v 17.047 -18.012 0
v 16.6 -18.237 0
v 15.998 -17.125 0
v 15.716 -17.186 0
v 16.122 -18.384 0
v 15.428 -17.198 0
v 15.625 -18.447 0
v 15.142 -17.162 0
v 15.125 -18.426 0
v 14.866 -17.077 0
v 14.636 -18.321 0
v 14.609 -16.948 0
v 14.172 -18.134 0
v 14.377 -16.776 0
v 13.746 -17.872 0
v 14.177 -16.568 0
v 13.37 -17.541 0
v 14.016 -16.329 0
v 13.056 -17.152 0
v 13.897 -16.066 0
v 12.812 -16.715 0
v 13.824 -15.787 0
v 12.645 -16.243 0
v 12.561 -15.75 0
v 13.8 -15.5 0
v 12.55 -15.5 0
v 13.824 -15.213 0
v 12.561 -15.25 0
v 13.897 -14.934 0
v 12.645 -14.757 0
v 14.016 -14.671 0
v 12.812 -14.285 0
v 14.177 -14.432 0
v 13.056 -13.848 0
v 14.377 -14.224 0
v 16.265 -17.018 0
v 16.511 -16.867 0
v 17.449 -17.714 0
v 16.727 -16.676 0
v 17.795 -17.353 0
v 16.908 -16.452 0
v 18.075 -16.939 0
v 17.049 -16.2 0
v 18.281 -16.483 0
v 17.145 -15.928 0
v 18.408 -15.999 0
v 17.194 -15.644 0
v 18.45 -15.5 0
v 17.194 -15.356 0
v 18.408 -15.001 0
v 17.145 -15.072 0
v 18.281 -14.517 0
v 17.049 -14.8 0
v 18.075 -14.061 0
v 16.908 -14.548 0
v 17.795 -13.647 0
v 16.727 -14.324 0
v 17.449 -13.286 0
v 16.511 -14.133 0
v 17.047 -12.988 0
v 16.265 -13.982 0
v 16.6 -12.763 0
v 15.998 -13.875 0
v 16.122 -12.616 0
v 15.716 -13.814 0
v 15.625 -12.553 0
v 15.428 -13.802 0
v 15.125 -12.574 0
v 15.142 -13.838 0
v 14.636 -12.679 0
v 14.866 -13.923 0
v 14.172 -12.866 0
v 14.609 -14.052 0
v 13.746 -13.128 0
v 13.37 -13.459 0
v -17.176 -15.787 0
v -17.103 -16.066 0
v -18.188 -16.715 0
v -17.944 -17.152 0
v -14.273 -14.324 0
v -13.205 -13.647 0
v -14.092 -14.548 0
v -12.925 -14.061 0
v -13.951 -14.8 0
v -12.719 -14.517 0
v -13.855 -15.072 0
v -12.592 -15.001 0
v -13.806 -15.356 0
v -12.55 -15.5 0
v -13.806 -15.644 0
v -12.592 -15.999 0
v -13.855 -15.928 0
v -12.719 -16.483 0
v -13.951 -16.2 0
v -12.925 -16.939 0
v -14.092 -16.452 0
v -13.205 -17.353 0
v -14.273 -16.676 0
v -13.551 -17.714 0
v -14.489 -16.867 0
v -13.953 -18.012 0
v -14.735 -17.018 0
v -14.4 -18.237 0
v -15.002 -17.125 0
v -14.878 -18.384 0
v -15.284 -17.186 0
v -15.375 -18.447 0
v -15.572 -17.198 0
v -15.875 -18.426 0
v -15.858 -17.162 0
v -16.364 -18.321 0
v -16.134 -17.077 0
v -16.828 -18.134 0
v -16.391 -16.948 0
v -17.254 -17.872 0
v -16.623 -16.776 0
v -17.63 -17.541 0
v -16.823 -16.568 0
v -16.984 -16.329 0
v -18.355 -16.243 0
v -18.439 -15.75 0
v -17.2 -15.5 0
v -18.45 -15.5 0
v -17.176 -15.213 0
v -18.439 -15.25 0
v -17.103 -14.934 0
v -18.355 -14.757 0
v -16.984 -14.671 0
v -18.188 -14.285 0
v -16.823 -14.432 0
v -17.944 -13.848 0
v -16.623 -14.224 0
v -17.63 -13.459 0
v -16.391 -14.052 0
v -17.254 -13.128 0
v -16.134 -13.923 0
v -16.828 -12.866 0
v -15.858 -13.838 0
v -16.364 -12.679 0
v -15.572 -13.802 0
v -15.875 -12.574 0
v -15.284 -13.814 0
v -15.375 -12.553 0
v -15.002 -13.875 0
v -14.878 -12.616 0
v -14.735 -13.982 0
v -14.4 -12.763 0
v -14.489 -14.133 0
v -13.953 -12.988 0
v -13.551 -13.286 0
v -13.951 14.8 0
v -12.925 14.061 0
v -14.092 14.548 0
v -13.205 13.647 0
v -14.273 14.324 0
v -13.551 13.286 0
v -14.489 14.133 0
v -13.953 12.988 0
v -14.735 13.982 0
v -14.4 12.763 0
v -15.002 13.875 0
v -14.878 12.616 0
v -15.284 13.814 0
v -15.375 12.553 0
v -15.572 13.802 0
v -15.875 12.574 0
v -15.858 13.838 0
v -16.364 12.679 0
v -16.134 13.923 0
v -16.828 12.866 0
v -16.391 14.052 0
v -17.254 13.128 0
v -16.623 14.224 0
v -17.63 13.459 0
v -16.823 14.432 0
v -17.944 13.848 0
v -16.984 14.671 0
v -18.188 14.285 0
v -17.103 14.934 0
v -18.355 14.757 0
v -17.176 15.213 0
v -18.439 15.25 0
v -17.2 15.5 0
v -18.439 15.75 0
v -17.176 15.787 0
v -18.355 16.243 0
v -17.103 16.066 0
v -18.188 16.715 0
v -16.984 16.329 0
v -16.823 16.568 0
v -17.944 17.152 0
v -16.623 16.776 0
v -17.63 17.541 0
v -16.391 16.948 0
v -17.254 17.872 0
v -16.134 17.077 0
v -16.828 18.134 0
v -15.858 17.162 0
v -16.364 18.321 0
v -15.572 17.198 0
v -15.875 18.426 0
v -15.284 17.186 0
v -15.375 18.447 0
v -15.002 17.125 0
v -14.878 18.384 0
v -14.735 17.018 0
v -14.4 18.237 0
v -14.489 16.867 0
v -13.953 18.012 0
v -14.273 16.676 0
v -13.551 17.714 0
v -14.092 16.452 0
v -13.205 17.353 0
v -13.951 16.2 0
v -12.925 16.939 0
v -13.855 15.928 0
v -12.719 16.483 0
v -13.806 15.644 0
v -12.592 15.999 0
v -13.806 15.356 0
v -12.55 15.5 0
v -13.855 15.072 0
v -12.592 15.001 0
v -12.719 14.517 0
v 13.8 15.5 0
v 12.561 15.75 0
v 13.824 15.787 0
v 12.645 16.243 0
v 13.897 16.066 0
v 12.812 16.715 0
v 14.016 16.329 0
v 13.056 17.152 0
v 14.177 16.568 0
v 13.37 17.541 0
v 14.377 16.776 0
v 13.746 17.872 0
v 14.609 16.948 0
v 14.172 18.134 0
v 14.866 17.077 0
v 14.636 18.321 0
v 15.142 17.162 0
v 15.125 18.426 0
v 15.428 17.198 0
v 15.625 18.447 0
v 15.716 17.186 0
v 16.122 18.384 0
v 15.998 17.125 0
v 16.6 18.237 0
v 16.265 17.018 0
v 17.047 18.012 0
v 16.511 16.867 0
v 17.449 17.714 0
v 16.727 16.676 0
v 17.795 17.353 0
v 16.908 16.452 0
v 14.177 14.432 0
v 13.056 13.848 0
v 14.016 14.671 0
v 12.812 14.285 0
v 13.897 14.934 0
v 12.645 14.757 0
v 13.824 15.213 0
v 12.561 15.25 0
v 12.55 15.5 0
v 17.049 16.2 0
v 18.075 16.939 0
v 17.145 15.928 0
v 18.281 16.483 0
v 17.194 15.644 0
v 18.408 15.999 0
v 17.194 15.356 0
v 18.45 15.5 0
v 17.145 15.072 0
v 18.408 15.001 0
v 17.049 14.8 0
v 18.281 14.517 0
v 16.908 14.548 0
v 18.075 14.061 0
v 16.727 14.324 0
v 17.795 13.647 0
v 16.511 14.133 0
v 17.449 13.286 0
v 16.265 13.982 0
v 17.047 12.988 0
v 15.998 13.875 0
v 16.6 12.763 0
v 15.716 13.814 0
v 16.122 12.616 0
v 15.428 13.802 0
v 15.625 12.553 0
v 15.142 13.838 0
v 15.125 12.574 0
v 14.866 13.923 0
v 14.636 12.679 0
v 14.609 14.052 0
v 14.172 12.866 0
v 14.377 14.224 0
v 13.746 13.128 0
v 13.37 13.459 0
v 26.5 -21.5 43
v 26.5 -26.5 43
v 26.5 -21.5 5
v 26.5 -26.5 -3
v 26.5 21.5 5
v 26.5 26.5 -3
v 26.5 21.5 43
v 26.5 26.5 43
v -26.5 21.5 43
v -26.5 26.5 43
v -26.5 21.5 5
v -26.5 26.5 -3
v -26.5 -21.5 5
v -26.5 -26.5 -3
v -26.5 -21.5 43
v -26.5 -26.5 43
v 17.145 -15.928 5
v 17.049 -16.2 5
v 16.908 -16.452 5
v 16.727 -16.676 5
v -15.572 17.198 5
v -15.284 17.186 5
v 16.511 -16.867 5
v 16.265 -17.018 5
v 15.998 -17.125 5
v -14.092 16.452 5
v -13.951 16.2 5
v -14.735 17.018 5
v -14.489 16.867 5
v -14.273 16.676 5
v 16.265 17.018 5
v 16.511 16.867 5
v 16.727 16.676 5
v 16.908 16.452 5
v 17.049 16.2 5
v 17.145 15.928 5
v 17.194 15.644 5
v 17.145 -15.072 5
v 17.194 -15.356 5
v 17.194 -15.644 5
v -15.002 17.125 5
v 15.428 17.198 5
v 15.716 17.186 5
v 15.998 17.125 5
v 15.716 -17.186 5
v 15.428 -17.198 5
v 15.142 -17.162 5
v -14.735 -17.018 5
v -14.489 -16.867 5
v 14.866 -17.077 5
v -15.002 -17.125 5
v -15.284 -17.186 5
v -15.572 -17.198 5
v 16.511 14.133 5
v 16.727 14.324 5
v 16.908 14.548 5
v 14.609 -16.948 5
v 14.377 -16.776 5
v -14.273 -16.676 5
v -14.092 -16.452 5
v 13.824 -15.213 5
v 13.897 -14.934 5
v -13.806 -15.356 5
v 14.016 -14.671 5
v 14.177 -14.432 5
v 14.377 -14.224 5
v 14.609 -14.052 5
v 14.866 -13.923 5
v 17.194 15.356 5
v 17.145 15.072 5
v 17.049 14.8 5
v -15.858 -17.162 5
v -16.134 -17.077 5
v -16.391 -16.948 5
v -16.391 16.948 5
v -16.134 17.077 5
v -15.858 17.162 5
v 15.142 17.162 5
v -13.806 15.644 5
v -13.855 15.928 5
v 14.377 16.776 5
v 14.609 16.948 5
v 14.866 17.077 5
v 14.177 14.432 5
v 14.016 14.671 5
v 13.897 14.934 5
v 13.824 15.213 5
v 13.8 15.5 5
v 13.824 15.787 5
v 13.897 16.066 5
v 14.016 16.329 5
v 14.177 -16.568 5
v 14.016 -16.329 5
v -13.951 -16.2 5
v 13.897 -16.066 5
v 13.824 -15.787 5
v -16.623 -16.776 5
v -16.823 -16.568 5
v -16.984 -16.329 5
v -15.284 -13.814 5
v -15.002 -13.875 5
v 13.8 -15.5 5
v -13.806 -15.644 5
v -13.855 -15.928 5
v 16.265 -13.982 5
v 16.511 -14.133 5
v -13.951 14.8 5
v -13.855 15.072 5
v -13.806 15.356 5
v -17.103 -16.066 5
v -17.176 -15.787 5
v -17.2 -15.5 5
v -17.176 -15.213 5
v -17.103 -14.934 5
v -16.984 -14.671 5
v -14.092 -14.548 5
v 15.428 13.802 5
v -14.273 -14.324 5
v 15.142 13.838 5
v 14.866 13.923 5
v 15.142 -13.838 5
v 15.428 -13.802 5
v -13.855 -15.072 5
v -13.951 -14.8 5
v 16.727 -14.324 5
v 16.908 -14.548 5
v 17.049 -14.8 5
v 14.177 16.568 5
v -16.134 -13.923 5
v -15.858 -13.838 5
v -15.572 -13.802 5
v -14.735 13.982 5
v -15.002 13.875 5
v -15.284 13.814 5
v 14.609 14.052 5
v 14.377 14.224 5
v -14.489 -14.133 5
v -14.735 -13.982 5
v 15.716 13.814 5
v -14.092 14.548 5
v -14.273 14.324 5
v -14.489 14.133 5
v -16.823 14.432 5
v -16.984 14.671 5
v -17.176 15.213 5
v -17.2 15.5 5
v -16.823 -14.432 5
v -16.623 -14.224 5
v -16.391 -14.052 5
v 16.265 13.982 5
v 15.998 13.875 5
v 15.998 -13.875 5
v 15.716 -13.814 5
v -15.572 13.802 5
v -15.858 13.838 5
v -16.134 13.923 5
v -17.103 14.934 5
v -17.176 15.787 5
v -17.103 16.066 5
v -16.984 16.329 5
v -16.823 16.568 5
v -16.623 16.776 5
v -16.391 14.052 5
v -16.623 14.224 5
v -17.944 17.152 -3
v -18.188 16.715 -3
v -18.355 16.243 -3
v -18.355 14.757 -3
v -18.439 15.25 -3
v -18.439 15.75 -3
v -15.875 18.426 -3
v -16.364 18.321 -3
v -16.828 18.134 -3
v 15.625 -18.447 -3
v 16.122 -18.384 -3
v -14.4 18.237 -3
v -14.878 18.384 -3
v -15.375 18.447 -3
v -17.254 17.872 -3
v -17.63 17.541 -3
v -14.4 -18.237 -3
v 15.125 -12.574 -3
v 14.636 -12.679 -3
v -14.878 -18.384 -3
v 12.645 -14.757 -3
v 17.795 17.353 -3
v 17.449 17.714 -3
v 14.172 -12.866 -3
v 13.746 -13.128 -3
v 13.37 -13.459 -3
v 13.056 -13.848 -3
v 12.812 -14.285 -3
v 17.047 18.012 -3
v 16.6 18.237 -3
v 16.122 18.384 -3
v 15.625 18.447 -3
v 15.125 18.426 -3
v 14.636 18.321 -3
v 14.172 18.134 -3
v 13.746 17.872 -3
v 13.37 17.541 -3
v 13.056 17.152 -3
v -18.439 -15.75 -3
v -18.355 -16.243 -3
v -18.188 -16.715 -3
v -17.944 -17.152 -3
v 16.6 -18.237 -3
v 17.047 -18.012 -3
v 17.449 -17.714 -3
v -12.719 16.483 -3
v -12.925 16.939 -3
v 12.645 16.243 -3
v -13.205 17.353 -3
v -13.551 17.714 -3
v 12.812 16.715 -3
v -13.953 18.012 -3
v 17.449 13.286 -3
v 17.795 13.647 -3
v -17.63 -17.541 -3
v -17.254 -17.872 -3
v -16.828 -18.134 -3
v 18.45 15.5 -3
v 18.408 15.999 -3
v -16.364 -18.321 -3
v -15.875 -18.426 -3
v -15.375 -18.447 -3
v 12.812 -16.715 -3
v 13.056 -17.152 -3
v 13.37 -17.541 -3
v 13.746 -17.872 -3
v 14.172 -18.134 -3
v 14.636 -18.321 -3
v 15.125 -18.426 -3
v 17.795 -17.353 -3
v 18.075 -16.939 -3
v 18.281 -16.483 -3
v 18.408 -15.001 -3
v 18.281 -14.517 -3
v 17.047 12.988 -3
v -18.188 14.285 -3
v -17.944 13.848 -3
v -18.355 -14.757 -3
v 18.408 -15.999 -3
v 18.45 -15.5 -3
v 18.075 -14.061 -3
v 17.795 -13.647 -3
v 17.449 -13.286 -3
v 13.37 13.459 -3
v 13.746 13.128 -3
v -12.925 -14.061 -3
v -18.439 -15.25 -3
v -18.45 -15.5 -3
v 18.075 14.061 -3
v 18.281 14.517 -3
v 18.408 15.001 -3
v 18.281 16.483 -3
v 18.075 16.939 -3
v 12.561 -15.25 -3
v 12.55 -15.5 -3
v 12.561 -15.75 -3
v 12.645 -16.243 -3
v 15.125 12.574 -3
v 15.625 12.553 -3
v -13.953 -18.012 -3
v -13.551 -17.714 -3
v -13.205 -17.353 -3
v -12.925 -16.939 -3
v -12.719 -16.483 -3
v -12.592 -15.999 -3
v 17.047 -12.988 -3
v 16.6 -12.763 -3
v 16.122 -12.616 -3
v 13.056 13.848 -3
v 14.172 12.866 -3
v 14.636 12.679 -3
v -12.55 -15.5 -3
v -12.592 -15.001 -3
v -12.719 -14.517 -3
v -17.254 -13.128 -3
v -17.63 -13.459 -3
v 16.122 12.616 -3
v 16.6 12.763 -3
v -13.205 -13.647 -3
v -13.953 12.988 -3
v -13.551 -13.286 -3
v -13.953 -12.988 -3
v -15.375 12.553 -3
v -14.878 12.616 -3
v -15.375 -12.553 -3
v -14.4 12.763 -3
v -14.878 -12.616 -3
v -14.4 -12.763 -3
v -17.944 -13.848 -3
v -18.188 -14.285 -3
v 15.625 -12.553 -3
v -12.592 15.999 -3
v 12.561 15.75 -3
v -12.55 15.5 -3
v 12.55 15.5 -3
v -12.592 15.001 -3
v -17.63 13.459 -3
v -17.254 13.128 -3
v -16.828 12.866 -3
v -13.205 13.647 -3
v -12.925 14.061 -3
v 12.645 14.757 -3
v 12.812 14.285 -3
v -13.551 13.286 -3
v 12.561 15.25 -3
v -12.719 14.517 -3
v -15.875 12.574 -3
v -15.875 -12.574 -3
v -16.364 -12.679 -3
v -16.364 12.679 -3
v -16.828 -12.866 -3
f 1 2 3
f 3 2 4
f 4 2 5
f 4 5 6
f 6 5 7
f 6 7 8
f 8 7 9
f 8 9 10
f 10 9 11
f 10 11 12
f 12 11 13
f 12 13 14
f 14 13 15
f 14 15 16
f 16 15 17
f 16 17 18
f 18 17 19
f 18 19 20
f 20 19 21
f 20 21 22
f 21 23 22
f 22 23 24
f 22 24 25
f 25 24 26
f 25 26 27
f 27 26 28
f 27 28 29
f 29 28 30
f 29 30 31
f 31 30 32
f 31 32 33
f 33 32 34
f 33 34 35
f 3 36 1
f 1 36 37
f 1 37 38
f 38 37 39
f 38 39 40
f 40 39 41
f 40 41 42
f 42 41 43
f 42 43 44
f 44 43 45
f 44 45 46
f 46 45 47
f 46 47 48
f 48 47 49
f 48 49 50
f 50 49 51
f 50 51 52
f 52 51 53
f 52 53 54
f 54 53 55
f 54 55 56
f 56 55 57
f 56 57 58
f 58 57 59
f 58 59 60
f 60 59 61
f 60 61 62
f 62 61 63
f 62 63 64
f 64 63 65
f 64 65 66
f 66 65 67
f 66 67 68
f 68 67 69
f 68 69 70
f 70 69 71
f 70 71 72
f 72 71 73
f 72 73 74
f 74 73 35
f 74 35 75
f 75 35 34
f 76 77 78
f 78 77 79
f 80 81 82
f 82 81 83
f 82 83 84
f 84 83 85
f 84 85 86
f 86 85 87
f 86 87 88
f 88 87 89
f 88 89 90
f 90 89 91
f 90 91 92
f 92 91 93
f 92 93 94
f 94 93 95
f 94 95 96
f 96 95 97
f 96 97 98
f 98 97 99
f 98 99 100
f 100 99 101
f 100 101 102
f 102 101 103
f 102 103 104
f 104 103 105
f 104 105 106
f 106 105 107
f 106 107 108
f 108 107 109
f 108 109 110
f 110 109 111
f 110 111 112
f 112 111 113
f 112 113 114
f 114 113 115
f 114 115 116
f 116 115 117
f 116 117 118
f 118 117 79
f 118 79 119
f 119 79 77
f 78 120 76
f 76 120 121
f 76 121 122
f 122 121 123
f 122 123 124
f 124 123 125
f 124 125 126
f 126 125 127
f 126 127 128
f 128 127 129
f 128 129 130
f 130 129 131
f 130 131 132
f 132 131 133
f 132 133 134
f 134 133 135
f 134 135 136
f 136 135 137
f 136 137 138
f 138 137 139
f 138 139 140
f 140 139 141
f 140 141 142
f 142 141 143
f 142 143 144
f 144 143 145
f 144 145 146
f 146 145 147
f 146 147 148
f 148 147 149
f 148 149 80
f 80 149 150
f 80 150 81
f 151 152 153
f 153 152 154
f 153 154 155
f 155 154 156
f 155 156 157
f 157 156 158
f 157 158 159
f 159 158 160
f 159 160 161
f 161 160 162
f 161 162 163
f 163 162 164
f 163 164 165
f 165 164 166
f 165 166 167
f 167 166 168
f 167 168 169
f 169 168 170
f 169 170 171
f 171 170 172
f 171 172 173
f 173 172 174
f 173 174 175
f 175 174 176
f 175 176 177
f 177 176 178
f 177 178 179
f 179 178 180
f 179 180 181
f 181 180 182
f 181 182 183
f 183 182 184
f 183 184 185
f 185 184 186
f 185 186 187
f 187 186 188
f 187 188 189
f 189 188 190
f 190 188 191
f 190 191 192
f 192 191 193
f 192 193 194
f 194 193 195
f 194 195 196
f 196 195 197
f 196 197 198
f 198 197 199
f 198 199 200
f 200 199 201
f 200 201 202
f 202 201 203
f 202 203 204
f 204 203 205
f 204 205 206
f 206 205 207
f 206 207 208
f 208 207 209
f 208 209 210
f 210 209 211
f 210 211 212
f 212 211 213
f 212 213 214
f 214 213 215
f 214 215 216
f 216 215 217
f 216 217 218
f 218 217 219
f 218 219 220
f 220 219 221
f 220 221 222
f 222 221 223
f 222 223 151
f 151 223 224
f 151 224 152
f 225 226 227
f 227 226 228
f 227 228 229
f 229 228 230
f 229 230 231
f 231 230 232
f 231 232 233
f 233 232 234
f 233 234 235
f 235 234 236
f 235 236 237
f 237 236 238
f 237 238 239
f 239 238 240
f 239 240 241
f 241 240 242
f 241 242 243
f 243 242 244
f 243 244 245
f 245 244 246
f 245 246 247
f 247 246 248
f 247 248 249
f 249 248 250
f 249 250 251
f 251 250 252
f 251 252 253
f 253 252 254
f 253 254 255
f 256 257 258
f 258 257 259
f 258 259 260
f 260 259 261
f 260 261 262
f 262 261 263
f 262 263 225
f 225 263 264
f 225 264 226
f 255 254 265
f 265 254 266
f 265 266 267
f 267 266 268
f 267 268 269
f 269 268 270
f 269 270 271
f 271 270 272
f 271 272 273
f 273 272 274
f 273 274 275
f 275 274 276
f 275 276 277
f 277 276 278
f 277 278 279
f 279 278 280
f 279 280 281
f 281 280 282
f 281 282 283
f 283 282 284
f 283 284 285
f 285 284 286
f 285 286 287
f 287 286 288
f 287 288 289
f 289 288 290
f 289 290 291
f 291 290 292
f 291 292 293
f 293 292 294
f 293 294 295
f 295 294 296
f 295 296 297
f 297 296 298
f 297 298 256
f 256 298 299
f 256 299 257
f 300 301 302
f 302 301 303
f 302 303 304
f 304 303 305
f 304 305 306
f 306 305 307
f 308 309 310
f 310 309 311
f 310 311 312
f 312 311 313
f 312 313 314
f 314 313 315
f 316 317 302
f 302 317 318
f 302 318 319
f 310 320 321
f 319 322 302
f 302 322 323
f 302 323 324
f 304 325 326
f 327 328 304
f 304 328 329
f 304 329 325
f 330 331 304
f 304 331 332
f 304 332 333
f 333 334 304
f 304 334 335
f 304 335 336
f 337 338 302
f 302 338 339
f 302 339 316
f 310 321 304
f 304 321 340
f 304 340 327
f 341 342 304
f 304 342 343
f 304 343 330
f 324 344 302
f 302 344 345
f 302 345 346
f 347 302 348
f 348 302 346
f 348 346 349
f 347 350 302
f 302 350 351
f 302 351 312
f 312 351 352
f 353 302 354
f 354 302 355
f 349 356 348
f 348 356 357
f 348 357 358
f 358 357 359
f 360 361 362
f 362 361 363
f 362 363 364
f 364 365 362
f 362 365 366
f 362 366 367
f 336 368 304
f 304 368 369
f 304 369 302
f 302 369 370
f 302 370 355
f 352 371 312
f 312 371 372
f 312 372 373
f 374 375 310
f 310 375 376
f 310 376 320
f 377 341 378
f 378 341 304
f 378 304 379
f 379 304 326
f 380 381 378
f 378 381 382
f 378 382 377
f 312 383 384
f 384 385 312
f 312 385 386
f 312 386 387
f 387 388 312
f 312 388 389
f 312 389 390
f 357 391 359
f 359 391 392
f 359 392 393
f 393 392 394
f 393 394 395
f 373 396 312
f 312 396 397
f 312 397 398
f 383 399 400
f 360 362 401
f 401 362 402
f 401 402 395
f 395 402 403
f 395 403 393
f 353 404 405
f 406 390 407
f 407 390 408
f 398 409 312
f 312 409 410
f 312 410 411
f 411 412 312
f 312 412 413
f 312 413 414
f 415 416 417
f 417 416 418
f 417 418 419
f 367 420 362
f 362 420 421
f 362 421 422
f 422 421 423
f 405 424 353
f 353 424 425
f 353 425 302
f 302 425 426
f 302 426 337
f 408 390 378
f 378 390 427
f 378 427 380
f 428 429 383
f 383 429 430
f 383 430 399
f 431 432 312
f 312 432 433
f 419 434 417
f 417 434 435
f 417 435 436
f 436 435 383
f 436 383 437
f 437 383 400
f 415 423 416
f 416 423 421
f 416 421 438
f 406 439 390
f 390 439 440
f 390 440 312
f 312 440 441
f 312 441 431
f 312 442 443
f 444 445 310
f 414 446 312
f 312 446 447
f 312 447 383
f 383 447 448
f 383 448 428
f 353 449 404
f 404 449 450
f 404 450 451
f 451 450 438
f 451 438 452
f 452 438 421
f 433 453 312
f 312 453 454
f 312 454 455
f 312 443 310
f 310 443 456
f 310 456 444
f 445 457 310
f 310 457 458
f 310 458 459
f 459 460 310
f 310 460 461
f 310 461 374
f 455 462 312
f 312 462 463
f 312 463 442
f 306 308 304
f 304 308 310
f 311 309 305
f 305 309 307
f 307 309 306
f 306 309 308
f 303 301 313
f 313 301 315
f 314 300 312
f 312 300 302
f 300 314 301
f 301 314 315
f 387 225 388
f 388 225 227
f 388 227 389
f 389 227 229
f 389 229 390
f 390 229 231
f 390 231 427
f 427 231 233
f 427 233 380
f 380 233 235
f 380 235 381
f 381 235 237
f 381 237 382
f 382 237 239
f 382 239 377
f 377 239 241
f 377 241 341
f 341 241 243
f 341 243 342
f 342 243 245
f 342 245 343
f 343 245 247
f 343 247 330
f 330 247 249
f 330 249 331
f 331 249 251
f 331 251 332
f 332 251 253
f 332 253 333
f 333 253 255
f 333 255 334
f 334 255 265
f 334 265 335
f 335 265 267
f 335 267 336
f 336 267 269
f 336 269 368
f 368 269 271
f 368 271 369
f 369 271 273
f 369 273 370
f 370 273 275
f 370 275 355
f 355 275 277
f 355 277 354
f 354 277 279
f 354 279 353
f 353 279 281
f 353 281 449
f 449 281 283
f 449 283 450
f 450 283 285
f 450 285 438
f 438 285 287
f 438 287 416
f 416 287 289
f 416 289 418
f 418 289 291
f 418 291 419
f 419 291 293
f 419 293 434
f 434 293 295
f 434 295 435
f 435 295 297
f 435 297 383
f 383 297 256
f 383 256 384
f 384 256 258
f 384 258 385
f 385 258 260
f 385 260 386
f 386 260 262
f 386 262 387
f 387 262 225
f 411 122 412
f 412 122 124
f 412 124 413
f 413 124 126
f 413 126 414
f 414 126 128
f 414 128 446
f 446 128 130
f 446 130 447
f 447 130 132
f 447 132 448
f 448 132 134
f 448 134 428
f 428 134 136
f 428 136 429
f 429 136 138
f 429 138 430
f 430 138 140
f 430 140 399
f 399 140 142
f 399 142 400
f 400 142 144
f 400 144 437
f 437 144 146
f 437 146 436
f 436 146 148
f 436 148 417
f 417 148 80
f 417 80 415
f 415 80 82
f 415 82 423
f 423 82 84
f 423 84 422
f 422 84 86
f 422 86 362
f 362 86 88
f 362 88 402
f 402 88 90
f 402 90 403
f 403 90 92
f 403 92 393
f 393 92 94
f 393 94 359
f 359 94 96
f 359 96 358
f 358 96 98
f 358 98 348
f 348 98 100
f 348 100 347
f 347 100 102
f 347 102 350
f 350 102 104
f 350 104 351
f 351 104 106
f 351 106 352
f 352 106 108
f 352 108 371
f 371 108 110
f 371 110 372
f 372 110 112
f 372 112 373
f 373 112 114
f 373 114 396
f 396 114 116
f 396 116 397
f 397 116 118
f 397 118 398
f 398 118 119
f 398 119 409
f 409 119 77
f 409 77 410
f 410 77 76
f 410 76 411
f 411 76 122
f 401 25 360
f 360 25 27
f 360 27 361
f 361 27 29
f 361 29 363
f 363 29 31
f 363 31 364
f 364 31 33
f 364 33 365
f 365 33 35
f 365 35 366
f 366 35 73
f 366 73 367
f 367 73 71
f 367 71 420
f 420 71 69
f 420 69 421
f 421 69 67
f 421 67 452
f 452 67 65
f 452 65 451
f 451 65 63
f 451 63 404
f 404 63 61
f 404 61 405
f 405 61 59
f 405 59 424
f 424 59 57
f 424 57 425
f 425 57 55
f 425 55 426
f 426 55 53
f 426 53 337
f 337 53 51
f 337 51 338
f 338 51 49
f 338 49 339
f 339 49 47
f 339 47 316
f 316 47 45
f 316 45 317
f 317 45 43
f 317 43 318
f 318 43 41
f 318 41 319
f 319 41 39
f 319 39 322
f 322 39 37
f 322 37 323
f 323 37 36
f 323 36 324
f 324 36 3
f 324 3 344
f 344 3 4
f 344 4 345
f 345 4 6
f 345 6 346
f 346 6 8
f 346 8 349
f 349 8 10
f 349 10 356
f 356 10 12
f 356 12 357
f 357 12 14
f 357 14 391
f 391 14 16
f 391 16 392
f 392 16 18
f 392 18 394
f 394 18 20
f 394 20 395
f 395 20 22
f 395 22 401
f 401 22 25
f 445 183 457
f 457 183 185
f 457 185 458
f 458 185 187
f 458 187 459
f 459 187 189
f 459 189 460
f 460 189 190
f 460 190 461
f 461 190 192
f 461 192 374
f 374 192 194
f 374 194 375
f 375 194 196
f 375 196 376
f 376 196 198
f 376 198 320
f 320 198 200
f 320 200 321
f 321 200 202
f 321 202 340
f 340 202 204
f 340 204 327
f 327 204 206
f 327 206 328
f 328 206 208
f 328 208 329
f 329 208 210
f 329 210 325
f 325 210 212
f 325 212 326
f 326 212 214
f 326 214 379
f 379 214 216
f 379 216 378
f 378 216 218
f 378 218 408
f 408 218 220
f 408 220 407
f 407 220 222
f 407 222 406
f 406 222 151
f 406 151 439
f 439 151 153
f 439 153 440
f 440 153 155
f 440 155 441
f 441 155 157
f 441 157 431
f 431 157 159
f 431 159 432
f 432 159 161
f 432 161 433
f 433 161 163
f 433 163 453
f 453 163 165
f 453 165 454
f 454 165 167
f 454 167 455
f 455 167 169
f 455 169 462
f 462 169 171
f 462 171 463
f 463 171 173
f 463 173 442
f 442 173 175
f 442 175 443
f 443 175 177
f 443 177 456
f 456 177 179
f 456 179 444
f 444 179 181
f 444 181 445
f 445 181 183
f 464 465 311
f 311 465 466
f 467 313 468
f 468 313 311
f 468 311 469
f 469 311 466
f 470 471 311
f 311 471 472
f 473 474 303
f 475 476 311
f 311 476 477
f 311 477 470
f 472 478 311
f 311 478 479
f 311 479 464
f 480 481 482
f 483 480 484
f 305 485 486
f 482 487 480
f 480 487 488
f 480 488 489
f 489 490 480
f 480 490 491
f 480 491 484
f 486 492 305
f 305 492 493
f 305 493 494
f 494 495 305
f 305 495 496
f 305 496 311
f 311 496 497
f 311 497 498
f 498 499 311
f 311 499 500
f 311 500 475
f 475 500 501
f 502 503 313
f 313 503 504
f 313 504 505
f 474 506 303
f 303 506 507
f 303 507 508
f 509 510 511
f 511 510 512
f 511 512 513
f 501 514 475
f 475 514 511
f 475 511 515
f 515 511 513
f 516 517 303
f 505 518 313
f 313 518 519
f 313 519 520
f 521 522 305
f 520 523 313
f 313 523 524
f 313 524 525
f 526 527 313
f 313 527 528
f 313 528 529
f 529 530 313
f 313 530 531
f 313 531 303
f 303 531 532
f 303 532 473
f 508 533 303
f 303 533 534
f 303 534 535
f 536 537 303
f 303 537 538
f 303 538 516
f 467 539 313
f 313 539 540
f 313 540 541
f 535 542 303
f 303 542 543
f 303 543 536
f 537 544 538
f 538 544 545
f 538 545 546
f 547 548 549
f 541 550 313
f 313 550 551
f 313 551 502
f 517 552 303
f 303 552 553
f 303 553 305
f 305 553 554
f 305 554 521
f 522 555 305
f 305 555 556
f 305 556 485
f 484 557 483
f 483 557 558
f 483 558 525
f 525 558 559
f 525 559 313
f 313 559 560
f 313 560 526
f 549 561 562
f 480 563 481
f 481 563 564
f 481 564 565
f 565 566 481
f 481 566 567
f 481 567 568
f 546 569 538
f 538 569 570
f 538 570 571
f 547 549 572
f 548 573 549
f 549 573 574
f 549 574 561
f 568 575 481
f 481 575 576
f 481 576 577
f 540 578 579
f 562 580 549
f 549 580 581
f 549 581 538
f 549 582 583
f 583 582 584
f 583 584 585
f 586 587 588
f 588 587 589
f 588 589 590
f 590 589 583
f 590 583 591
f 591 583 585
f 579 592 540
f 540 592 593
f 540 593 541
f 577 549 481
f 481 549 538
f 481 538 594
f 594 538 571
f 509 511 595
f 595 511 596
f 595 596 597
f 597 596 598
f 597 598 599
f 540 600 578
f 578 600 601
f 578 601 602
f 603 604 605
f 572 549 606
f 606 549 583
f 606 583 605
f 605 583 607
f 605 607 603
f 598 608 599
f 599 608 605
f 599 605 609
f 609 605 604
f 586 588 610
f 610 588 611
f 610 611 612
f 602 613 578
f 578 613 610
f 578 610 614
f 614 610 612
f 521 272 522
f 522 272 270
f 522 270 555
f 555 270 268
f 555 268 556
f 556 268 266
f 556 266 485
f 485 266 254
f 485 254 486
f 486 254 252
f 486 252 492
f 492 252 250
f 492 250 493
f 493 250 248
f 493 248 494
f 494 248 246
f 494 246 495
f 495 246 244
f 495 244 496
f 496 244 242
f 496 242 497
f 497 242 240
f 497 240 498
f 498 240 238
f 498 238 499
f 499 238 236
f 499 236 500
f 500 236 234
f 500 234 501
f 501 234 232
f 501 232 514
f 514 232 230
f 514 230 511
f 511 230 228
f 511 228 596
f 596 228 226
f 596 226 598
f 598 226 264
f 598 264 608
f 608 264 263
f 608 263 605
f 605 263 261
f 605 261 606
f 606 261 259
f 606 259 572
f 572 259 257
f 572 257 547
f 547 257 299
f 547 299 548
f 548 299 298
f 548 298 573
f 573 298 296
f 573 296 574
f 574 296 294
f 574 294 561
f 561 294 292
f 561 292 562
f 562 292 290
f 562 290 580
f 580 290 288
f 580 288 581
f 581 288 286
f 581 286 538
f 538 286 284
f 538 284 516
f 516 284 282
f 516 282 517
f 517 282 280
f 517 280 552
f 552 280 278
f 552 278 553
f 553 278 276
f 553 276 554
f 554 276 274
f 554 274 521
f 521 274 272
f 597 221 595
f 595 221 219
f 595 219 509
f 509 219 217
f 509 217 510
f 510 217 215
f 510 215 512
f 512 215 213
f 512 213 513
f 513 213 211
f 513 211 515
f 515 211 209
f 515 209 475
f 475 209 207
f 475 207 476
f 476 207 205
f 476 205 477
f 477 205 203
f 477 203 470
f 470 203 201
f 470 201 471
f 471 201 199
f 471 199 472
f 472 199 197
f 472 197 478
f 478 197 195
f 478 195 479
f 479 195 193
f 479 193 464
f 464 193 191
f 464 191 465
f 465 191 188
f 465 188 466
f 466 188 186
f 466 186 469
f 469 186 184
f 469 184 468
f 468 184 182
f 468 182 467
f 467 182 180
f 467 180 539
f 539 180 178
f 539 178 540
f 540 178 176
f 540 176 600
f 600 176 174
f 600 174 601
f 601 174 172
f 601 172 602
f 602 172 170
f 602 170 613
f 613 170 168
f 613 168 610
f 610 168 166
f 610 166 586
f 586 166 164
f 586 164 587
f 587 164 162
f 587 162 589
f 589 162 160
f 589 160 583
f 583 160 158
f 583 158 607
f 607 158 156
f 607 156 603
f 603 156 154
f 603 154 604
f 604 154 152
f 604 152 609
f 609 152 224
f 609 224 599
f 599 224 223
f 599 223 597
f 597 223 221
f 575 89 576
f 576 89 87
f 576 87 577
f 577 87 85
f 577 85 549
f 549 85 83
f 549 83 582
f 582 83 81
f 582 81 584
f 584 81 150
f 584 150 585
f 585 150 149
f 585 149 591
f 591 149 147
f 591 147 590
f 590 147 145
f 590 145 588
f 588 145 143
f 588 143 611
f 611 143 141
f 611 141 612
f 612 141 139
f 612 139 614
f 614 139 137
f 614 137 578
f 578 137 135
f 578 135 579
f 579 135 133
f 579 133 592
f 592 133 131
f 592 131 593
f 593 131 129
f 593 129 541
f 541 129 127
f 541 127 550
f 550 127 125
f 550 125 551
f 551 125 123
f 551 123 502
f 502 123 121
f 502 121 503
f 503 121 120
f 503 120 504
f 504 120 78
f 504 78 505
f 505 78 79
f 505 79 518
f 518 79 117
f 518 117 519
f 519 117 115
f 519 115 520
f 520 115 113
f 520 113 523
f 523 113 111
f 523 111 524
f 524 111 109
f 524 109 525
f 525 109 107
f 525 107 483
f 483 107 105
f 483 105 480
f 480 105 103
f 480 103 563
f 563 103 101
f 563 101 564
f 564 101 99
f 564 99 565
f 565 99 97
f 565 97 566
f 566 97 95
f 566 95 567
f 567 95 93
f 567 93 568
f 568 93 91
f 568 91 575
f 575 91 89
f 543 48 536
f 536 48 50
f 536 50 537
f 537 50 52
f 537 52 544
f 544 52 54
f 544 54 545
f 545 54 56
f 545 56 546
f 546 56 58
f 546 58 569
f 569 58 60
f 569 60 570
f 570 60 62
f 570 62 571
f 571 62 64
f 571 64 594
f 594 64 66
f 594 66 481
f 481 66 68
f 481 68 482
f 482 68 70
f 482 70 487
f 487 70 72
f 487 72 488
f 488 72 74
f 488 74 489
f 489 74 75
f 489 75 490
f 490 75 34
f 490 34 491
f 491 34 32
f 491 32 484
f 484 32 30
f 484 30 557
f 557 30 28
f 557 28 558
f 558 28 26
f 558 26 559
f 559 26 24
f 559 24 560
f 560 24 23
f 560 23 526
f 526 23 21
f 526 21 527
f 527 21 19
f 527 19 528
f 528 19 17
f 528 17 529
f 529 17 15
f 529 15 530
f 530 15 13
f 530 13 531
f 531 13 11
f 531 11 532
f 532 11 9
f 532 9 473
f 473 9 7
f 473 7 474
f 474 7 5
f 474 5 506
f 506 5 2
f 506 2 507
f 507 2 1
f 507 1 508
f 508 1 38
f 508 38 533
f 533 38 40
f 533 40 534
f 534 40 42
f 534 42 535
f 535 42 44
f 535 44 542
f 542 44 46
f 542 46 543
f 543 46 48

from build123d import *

# Parameters (mm, degrees)
SKETCH1_W           = 53
SKETCH1_H           = 43
BOSS_EXTRUDE1_DEPTH = 5
SKETCH2_W           = 53
SKETCH2_H           = 5
BOSS_EXTRUDE2_DEPTH = 43
SKETCH4_R           = 1.7
CUT_EXTRUDE1_DEPTH  = 58.039460025
SKETCH6_W           = 53
SKETCH6_H           = 53
SKETCH6_R           = 2.95
BOSS_EXTRUDE5_DEPTH = 3


with BuildPart() as part:
    # Sketch1 → Boss-Extrude1 (new body)
    with BuildSketch(Plane.XY):
        Rectangle(SKETCH1_W, SKETCH1_H)
    extrude(amount=BOSS_EXTRUDE1_DEPTH)

    # Sketch2 → Boss-Extrude2 (add)
    with BuildSketch(Plane(origin=(0, 0, 0), x_dir=(-1, 0, 0), z_dir=(0, 0, -1))):
        with Locations((0, -24)):
            Rectangle(SKETCH2_W, SKETCH2_H)
        with Locations((0, 24)):
            Rectangle(SKETCH2_W, SKETCH2_H)
    extrude(amount=-BOSS_EXTRUDE2_DEPTH)

    # Sketch4 → Cut-Extrude1 (cut, through all)
    with BuildSketch(Plane(origin=(0, 0, 0), x_dir=(-1, 0, 0), z_dir=(0, 0, -1))):
        with Locations((-15.5, 15.5)):
            Circle(SKETCH4_R)
        with Locations((15.5, 15.5)):
            Circle(SKETCH4_R)
        with Locations((-15.5, -15.5)):
            Circle(SKETCH4_R)
        with Locations((15.5, -15.5)):
            Circle(SKETCH4_R)
    extrude(amount=-CUT_EXTRUDE1_DEPTH, mode=Mode.SUBTRACT)

    # Sketch6 → Boss-Extrude5 (add)
    with BuildSketch(Plane.XY):
        Rectangle(SKETCH6_W, SKETCH6_H)
        with Locations((-15.5, 15.5)):
            Circle(SKETCH6_R, mode=Mode.SUBTRACT)
        with Locations(Location((15.5, 15.5, 0), (0, 0, 180))):
            Circle(SKETCH6_R, mode=Mode.SUBTRACT)
        with Locations(Location((-15.5, -15.5, 0), (0, 0, 180))):
            Circle(SKETCH6_R, mode=Mode.SUBTRACT)
        with Locations(Location((15.5, -15.5, 0), (0, 0, 180))):
            Circle(SKETCH6_R, mode=Mode.SUBTRACT)
    extrude(amount=-BOSS_EXTRUDE5_DEPTH)


solid = part.part
